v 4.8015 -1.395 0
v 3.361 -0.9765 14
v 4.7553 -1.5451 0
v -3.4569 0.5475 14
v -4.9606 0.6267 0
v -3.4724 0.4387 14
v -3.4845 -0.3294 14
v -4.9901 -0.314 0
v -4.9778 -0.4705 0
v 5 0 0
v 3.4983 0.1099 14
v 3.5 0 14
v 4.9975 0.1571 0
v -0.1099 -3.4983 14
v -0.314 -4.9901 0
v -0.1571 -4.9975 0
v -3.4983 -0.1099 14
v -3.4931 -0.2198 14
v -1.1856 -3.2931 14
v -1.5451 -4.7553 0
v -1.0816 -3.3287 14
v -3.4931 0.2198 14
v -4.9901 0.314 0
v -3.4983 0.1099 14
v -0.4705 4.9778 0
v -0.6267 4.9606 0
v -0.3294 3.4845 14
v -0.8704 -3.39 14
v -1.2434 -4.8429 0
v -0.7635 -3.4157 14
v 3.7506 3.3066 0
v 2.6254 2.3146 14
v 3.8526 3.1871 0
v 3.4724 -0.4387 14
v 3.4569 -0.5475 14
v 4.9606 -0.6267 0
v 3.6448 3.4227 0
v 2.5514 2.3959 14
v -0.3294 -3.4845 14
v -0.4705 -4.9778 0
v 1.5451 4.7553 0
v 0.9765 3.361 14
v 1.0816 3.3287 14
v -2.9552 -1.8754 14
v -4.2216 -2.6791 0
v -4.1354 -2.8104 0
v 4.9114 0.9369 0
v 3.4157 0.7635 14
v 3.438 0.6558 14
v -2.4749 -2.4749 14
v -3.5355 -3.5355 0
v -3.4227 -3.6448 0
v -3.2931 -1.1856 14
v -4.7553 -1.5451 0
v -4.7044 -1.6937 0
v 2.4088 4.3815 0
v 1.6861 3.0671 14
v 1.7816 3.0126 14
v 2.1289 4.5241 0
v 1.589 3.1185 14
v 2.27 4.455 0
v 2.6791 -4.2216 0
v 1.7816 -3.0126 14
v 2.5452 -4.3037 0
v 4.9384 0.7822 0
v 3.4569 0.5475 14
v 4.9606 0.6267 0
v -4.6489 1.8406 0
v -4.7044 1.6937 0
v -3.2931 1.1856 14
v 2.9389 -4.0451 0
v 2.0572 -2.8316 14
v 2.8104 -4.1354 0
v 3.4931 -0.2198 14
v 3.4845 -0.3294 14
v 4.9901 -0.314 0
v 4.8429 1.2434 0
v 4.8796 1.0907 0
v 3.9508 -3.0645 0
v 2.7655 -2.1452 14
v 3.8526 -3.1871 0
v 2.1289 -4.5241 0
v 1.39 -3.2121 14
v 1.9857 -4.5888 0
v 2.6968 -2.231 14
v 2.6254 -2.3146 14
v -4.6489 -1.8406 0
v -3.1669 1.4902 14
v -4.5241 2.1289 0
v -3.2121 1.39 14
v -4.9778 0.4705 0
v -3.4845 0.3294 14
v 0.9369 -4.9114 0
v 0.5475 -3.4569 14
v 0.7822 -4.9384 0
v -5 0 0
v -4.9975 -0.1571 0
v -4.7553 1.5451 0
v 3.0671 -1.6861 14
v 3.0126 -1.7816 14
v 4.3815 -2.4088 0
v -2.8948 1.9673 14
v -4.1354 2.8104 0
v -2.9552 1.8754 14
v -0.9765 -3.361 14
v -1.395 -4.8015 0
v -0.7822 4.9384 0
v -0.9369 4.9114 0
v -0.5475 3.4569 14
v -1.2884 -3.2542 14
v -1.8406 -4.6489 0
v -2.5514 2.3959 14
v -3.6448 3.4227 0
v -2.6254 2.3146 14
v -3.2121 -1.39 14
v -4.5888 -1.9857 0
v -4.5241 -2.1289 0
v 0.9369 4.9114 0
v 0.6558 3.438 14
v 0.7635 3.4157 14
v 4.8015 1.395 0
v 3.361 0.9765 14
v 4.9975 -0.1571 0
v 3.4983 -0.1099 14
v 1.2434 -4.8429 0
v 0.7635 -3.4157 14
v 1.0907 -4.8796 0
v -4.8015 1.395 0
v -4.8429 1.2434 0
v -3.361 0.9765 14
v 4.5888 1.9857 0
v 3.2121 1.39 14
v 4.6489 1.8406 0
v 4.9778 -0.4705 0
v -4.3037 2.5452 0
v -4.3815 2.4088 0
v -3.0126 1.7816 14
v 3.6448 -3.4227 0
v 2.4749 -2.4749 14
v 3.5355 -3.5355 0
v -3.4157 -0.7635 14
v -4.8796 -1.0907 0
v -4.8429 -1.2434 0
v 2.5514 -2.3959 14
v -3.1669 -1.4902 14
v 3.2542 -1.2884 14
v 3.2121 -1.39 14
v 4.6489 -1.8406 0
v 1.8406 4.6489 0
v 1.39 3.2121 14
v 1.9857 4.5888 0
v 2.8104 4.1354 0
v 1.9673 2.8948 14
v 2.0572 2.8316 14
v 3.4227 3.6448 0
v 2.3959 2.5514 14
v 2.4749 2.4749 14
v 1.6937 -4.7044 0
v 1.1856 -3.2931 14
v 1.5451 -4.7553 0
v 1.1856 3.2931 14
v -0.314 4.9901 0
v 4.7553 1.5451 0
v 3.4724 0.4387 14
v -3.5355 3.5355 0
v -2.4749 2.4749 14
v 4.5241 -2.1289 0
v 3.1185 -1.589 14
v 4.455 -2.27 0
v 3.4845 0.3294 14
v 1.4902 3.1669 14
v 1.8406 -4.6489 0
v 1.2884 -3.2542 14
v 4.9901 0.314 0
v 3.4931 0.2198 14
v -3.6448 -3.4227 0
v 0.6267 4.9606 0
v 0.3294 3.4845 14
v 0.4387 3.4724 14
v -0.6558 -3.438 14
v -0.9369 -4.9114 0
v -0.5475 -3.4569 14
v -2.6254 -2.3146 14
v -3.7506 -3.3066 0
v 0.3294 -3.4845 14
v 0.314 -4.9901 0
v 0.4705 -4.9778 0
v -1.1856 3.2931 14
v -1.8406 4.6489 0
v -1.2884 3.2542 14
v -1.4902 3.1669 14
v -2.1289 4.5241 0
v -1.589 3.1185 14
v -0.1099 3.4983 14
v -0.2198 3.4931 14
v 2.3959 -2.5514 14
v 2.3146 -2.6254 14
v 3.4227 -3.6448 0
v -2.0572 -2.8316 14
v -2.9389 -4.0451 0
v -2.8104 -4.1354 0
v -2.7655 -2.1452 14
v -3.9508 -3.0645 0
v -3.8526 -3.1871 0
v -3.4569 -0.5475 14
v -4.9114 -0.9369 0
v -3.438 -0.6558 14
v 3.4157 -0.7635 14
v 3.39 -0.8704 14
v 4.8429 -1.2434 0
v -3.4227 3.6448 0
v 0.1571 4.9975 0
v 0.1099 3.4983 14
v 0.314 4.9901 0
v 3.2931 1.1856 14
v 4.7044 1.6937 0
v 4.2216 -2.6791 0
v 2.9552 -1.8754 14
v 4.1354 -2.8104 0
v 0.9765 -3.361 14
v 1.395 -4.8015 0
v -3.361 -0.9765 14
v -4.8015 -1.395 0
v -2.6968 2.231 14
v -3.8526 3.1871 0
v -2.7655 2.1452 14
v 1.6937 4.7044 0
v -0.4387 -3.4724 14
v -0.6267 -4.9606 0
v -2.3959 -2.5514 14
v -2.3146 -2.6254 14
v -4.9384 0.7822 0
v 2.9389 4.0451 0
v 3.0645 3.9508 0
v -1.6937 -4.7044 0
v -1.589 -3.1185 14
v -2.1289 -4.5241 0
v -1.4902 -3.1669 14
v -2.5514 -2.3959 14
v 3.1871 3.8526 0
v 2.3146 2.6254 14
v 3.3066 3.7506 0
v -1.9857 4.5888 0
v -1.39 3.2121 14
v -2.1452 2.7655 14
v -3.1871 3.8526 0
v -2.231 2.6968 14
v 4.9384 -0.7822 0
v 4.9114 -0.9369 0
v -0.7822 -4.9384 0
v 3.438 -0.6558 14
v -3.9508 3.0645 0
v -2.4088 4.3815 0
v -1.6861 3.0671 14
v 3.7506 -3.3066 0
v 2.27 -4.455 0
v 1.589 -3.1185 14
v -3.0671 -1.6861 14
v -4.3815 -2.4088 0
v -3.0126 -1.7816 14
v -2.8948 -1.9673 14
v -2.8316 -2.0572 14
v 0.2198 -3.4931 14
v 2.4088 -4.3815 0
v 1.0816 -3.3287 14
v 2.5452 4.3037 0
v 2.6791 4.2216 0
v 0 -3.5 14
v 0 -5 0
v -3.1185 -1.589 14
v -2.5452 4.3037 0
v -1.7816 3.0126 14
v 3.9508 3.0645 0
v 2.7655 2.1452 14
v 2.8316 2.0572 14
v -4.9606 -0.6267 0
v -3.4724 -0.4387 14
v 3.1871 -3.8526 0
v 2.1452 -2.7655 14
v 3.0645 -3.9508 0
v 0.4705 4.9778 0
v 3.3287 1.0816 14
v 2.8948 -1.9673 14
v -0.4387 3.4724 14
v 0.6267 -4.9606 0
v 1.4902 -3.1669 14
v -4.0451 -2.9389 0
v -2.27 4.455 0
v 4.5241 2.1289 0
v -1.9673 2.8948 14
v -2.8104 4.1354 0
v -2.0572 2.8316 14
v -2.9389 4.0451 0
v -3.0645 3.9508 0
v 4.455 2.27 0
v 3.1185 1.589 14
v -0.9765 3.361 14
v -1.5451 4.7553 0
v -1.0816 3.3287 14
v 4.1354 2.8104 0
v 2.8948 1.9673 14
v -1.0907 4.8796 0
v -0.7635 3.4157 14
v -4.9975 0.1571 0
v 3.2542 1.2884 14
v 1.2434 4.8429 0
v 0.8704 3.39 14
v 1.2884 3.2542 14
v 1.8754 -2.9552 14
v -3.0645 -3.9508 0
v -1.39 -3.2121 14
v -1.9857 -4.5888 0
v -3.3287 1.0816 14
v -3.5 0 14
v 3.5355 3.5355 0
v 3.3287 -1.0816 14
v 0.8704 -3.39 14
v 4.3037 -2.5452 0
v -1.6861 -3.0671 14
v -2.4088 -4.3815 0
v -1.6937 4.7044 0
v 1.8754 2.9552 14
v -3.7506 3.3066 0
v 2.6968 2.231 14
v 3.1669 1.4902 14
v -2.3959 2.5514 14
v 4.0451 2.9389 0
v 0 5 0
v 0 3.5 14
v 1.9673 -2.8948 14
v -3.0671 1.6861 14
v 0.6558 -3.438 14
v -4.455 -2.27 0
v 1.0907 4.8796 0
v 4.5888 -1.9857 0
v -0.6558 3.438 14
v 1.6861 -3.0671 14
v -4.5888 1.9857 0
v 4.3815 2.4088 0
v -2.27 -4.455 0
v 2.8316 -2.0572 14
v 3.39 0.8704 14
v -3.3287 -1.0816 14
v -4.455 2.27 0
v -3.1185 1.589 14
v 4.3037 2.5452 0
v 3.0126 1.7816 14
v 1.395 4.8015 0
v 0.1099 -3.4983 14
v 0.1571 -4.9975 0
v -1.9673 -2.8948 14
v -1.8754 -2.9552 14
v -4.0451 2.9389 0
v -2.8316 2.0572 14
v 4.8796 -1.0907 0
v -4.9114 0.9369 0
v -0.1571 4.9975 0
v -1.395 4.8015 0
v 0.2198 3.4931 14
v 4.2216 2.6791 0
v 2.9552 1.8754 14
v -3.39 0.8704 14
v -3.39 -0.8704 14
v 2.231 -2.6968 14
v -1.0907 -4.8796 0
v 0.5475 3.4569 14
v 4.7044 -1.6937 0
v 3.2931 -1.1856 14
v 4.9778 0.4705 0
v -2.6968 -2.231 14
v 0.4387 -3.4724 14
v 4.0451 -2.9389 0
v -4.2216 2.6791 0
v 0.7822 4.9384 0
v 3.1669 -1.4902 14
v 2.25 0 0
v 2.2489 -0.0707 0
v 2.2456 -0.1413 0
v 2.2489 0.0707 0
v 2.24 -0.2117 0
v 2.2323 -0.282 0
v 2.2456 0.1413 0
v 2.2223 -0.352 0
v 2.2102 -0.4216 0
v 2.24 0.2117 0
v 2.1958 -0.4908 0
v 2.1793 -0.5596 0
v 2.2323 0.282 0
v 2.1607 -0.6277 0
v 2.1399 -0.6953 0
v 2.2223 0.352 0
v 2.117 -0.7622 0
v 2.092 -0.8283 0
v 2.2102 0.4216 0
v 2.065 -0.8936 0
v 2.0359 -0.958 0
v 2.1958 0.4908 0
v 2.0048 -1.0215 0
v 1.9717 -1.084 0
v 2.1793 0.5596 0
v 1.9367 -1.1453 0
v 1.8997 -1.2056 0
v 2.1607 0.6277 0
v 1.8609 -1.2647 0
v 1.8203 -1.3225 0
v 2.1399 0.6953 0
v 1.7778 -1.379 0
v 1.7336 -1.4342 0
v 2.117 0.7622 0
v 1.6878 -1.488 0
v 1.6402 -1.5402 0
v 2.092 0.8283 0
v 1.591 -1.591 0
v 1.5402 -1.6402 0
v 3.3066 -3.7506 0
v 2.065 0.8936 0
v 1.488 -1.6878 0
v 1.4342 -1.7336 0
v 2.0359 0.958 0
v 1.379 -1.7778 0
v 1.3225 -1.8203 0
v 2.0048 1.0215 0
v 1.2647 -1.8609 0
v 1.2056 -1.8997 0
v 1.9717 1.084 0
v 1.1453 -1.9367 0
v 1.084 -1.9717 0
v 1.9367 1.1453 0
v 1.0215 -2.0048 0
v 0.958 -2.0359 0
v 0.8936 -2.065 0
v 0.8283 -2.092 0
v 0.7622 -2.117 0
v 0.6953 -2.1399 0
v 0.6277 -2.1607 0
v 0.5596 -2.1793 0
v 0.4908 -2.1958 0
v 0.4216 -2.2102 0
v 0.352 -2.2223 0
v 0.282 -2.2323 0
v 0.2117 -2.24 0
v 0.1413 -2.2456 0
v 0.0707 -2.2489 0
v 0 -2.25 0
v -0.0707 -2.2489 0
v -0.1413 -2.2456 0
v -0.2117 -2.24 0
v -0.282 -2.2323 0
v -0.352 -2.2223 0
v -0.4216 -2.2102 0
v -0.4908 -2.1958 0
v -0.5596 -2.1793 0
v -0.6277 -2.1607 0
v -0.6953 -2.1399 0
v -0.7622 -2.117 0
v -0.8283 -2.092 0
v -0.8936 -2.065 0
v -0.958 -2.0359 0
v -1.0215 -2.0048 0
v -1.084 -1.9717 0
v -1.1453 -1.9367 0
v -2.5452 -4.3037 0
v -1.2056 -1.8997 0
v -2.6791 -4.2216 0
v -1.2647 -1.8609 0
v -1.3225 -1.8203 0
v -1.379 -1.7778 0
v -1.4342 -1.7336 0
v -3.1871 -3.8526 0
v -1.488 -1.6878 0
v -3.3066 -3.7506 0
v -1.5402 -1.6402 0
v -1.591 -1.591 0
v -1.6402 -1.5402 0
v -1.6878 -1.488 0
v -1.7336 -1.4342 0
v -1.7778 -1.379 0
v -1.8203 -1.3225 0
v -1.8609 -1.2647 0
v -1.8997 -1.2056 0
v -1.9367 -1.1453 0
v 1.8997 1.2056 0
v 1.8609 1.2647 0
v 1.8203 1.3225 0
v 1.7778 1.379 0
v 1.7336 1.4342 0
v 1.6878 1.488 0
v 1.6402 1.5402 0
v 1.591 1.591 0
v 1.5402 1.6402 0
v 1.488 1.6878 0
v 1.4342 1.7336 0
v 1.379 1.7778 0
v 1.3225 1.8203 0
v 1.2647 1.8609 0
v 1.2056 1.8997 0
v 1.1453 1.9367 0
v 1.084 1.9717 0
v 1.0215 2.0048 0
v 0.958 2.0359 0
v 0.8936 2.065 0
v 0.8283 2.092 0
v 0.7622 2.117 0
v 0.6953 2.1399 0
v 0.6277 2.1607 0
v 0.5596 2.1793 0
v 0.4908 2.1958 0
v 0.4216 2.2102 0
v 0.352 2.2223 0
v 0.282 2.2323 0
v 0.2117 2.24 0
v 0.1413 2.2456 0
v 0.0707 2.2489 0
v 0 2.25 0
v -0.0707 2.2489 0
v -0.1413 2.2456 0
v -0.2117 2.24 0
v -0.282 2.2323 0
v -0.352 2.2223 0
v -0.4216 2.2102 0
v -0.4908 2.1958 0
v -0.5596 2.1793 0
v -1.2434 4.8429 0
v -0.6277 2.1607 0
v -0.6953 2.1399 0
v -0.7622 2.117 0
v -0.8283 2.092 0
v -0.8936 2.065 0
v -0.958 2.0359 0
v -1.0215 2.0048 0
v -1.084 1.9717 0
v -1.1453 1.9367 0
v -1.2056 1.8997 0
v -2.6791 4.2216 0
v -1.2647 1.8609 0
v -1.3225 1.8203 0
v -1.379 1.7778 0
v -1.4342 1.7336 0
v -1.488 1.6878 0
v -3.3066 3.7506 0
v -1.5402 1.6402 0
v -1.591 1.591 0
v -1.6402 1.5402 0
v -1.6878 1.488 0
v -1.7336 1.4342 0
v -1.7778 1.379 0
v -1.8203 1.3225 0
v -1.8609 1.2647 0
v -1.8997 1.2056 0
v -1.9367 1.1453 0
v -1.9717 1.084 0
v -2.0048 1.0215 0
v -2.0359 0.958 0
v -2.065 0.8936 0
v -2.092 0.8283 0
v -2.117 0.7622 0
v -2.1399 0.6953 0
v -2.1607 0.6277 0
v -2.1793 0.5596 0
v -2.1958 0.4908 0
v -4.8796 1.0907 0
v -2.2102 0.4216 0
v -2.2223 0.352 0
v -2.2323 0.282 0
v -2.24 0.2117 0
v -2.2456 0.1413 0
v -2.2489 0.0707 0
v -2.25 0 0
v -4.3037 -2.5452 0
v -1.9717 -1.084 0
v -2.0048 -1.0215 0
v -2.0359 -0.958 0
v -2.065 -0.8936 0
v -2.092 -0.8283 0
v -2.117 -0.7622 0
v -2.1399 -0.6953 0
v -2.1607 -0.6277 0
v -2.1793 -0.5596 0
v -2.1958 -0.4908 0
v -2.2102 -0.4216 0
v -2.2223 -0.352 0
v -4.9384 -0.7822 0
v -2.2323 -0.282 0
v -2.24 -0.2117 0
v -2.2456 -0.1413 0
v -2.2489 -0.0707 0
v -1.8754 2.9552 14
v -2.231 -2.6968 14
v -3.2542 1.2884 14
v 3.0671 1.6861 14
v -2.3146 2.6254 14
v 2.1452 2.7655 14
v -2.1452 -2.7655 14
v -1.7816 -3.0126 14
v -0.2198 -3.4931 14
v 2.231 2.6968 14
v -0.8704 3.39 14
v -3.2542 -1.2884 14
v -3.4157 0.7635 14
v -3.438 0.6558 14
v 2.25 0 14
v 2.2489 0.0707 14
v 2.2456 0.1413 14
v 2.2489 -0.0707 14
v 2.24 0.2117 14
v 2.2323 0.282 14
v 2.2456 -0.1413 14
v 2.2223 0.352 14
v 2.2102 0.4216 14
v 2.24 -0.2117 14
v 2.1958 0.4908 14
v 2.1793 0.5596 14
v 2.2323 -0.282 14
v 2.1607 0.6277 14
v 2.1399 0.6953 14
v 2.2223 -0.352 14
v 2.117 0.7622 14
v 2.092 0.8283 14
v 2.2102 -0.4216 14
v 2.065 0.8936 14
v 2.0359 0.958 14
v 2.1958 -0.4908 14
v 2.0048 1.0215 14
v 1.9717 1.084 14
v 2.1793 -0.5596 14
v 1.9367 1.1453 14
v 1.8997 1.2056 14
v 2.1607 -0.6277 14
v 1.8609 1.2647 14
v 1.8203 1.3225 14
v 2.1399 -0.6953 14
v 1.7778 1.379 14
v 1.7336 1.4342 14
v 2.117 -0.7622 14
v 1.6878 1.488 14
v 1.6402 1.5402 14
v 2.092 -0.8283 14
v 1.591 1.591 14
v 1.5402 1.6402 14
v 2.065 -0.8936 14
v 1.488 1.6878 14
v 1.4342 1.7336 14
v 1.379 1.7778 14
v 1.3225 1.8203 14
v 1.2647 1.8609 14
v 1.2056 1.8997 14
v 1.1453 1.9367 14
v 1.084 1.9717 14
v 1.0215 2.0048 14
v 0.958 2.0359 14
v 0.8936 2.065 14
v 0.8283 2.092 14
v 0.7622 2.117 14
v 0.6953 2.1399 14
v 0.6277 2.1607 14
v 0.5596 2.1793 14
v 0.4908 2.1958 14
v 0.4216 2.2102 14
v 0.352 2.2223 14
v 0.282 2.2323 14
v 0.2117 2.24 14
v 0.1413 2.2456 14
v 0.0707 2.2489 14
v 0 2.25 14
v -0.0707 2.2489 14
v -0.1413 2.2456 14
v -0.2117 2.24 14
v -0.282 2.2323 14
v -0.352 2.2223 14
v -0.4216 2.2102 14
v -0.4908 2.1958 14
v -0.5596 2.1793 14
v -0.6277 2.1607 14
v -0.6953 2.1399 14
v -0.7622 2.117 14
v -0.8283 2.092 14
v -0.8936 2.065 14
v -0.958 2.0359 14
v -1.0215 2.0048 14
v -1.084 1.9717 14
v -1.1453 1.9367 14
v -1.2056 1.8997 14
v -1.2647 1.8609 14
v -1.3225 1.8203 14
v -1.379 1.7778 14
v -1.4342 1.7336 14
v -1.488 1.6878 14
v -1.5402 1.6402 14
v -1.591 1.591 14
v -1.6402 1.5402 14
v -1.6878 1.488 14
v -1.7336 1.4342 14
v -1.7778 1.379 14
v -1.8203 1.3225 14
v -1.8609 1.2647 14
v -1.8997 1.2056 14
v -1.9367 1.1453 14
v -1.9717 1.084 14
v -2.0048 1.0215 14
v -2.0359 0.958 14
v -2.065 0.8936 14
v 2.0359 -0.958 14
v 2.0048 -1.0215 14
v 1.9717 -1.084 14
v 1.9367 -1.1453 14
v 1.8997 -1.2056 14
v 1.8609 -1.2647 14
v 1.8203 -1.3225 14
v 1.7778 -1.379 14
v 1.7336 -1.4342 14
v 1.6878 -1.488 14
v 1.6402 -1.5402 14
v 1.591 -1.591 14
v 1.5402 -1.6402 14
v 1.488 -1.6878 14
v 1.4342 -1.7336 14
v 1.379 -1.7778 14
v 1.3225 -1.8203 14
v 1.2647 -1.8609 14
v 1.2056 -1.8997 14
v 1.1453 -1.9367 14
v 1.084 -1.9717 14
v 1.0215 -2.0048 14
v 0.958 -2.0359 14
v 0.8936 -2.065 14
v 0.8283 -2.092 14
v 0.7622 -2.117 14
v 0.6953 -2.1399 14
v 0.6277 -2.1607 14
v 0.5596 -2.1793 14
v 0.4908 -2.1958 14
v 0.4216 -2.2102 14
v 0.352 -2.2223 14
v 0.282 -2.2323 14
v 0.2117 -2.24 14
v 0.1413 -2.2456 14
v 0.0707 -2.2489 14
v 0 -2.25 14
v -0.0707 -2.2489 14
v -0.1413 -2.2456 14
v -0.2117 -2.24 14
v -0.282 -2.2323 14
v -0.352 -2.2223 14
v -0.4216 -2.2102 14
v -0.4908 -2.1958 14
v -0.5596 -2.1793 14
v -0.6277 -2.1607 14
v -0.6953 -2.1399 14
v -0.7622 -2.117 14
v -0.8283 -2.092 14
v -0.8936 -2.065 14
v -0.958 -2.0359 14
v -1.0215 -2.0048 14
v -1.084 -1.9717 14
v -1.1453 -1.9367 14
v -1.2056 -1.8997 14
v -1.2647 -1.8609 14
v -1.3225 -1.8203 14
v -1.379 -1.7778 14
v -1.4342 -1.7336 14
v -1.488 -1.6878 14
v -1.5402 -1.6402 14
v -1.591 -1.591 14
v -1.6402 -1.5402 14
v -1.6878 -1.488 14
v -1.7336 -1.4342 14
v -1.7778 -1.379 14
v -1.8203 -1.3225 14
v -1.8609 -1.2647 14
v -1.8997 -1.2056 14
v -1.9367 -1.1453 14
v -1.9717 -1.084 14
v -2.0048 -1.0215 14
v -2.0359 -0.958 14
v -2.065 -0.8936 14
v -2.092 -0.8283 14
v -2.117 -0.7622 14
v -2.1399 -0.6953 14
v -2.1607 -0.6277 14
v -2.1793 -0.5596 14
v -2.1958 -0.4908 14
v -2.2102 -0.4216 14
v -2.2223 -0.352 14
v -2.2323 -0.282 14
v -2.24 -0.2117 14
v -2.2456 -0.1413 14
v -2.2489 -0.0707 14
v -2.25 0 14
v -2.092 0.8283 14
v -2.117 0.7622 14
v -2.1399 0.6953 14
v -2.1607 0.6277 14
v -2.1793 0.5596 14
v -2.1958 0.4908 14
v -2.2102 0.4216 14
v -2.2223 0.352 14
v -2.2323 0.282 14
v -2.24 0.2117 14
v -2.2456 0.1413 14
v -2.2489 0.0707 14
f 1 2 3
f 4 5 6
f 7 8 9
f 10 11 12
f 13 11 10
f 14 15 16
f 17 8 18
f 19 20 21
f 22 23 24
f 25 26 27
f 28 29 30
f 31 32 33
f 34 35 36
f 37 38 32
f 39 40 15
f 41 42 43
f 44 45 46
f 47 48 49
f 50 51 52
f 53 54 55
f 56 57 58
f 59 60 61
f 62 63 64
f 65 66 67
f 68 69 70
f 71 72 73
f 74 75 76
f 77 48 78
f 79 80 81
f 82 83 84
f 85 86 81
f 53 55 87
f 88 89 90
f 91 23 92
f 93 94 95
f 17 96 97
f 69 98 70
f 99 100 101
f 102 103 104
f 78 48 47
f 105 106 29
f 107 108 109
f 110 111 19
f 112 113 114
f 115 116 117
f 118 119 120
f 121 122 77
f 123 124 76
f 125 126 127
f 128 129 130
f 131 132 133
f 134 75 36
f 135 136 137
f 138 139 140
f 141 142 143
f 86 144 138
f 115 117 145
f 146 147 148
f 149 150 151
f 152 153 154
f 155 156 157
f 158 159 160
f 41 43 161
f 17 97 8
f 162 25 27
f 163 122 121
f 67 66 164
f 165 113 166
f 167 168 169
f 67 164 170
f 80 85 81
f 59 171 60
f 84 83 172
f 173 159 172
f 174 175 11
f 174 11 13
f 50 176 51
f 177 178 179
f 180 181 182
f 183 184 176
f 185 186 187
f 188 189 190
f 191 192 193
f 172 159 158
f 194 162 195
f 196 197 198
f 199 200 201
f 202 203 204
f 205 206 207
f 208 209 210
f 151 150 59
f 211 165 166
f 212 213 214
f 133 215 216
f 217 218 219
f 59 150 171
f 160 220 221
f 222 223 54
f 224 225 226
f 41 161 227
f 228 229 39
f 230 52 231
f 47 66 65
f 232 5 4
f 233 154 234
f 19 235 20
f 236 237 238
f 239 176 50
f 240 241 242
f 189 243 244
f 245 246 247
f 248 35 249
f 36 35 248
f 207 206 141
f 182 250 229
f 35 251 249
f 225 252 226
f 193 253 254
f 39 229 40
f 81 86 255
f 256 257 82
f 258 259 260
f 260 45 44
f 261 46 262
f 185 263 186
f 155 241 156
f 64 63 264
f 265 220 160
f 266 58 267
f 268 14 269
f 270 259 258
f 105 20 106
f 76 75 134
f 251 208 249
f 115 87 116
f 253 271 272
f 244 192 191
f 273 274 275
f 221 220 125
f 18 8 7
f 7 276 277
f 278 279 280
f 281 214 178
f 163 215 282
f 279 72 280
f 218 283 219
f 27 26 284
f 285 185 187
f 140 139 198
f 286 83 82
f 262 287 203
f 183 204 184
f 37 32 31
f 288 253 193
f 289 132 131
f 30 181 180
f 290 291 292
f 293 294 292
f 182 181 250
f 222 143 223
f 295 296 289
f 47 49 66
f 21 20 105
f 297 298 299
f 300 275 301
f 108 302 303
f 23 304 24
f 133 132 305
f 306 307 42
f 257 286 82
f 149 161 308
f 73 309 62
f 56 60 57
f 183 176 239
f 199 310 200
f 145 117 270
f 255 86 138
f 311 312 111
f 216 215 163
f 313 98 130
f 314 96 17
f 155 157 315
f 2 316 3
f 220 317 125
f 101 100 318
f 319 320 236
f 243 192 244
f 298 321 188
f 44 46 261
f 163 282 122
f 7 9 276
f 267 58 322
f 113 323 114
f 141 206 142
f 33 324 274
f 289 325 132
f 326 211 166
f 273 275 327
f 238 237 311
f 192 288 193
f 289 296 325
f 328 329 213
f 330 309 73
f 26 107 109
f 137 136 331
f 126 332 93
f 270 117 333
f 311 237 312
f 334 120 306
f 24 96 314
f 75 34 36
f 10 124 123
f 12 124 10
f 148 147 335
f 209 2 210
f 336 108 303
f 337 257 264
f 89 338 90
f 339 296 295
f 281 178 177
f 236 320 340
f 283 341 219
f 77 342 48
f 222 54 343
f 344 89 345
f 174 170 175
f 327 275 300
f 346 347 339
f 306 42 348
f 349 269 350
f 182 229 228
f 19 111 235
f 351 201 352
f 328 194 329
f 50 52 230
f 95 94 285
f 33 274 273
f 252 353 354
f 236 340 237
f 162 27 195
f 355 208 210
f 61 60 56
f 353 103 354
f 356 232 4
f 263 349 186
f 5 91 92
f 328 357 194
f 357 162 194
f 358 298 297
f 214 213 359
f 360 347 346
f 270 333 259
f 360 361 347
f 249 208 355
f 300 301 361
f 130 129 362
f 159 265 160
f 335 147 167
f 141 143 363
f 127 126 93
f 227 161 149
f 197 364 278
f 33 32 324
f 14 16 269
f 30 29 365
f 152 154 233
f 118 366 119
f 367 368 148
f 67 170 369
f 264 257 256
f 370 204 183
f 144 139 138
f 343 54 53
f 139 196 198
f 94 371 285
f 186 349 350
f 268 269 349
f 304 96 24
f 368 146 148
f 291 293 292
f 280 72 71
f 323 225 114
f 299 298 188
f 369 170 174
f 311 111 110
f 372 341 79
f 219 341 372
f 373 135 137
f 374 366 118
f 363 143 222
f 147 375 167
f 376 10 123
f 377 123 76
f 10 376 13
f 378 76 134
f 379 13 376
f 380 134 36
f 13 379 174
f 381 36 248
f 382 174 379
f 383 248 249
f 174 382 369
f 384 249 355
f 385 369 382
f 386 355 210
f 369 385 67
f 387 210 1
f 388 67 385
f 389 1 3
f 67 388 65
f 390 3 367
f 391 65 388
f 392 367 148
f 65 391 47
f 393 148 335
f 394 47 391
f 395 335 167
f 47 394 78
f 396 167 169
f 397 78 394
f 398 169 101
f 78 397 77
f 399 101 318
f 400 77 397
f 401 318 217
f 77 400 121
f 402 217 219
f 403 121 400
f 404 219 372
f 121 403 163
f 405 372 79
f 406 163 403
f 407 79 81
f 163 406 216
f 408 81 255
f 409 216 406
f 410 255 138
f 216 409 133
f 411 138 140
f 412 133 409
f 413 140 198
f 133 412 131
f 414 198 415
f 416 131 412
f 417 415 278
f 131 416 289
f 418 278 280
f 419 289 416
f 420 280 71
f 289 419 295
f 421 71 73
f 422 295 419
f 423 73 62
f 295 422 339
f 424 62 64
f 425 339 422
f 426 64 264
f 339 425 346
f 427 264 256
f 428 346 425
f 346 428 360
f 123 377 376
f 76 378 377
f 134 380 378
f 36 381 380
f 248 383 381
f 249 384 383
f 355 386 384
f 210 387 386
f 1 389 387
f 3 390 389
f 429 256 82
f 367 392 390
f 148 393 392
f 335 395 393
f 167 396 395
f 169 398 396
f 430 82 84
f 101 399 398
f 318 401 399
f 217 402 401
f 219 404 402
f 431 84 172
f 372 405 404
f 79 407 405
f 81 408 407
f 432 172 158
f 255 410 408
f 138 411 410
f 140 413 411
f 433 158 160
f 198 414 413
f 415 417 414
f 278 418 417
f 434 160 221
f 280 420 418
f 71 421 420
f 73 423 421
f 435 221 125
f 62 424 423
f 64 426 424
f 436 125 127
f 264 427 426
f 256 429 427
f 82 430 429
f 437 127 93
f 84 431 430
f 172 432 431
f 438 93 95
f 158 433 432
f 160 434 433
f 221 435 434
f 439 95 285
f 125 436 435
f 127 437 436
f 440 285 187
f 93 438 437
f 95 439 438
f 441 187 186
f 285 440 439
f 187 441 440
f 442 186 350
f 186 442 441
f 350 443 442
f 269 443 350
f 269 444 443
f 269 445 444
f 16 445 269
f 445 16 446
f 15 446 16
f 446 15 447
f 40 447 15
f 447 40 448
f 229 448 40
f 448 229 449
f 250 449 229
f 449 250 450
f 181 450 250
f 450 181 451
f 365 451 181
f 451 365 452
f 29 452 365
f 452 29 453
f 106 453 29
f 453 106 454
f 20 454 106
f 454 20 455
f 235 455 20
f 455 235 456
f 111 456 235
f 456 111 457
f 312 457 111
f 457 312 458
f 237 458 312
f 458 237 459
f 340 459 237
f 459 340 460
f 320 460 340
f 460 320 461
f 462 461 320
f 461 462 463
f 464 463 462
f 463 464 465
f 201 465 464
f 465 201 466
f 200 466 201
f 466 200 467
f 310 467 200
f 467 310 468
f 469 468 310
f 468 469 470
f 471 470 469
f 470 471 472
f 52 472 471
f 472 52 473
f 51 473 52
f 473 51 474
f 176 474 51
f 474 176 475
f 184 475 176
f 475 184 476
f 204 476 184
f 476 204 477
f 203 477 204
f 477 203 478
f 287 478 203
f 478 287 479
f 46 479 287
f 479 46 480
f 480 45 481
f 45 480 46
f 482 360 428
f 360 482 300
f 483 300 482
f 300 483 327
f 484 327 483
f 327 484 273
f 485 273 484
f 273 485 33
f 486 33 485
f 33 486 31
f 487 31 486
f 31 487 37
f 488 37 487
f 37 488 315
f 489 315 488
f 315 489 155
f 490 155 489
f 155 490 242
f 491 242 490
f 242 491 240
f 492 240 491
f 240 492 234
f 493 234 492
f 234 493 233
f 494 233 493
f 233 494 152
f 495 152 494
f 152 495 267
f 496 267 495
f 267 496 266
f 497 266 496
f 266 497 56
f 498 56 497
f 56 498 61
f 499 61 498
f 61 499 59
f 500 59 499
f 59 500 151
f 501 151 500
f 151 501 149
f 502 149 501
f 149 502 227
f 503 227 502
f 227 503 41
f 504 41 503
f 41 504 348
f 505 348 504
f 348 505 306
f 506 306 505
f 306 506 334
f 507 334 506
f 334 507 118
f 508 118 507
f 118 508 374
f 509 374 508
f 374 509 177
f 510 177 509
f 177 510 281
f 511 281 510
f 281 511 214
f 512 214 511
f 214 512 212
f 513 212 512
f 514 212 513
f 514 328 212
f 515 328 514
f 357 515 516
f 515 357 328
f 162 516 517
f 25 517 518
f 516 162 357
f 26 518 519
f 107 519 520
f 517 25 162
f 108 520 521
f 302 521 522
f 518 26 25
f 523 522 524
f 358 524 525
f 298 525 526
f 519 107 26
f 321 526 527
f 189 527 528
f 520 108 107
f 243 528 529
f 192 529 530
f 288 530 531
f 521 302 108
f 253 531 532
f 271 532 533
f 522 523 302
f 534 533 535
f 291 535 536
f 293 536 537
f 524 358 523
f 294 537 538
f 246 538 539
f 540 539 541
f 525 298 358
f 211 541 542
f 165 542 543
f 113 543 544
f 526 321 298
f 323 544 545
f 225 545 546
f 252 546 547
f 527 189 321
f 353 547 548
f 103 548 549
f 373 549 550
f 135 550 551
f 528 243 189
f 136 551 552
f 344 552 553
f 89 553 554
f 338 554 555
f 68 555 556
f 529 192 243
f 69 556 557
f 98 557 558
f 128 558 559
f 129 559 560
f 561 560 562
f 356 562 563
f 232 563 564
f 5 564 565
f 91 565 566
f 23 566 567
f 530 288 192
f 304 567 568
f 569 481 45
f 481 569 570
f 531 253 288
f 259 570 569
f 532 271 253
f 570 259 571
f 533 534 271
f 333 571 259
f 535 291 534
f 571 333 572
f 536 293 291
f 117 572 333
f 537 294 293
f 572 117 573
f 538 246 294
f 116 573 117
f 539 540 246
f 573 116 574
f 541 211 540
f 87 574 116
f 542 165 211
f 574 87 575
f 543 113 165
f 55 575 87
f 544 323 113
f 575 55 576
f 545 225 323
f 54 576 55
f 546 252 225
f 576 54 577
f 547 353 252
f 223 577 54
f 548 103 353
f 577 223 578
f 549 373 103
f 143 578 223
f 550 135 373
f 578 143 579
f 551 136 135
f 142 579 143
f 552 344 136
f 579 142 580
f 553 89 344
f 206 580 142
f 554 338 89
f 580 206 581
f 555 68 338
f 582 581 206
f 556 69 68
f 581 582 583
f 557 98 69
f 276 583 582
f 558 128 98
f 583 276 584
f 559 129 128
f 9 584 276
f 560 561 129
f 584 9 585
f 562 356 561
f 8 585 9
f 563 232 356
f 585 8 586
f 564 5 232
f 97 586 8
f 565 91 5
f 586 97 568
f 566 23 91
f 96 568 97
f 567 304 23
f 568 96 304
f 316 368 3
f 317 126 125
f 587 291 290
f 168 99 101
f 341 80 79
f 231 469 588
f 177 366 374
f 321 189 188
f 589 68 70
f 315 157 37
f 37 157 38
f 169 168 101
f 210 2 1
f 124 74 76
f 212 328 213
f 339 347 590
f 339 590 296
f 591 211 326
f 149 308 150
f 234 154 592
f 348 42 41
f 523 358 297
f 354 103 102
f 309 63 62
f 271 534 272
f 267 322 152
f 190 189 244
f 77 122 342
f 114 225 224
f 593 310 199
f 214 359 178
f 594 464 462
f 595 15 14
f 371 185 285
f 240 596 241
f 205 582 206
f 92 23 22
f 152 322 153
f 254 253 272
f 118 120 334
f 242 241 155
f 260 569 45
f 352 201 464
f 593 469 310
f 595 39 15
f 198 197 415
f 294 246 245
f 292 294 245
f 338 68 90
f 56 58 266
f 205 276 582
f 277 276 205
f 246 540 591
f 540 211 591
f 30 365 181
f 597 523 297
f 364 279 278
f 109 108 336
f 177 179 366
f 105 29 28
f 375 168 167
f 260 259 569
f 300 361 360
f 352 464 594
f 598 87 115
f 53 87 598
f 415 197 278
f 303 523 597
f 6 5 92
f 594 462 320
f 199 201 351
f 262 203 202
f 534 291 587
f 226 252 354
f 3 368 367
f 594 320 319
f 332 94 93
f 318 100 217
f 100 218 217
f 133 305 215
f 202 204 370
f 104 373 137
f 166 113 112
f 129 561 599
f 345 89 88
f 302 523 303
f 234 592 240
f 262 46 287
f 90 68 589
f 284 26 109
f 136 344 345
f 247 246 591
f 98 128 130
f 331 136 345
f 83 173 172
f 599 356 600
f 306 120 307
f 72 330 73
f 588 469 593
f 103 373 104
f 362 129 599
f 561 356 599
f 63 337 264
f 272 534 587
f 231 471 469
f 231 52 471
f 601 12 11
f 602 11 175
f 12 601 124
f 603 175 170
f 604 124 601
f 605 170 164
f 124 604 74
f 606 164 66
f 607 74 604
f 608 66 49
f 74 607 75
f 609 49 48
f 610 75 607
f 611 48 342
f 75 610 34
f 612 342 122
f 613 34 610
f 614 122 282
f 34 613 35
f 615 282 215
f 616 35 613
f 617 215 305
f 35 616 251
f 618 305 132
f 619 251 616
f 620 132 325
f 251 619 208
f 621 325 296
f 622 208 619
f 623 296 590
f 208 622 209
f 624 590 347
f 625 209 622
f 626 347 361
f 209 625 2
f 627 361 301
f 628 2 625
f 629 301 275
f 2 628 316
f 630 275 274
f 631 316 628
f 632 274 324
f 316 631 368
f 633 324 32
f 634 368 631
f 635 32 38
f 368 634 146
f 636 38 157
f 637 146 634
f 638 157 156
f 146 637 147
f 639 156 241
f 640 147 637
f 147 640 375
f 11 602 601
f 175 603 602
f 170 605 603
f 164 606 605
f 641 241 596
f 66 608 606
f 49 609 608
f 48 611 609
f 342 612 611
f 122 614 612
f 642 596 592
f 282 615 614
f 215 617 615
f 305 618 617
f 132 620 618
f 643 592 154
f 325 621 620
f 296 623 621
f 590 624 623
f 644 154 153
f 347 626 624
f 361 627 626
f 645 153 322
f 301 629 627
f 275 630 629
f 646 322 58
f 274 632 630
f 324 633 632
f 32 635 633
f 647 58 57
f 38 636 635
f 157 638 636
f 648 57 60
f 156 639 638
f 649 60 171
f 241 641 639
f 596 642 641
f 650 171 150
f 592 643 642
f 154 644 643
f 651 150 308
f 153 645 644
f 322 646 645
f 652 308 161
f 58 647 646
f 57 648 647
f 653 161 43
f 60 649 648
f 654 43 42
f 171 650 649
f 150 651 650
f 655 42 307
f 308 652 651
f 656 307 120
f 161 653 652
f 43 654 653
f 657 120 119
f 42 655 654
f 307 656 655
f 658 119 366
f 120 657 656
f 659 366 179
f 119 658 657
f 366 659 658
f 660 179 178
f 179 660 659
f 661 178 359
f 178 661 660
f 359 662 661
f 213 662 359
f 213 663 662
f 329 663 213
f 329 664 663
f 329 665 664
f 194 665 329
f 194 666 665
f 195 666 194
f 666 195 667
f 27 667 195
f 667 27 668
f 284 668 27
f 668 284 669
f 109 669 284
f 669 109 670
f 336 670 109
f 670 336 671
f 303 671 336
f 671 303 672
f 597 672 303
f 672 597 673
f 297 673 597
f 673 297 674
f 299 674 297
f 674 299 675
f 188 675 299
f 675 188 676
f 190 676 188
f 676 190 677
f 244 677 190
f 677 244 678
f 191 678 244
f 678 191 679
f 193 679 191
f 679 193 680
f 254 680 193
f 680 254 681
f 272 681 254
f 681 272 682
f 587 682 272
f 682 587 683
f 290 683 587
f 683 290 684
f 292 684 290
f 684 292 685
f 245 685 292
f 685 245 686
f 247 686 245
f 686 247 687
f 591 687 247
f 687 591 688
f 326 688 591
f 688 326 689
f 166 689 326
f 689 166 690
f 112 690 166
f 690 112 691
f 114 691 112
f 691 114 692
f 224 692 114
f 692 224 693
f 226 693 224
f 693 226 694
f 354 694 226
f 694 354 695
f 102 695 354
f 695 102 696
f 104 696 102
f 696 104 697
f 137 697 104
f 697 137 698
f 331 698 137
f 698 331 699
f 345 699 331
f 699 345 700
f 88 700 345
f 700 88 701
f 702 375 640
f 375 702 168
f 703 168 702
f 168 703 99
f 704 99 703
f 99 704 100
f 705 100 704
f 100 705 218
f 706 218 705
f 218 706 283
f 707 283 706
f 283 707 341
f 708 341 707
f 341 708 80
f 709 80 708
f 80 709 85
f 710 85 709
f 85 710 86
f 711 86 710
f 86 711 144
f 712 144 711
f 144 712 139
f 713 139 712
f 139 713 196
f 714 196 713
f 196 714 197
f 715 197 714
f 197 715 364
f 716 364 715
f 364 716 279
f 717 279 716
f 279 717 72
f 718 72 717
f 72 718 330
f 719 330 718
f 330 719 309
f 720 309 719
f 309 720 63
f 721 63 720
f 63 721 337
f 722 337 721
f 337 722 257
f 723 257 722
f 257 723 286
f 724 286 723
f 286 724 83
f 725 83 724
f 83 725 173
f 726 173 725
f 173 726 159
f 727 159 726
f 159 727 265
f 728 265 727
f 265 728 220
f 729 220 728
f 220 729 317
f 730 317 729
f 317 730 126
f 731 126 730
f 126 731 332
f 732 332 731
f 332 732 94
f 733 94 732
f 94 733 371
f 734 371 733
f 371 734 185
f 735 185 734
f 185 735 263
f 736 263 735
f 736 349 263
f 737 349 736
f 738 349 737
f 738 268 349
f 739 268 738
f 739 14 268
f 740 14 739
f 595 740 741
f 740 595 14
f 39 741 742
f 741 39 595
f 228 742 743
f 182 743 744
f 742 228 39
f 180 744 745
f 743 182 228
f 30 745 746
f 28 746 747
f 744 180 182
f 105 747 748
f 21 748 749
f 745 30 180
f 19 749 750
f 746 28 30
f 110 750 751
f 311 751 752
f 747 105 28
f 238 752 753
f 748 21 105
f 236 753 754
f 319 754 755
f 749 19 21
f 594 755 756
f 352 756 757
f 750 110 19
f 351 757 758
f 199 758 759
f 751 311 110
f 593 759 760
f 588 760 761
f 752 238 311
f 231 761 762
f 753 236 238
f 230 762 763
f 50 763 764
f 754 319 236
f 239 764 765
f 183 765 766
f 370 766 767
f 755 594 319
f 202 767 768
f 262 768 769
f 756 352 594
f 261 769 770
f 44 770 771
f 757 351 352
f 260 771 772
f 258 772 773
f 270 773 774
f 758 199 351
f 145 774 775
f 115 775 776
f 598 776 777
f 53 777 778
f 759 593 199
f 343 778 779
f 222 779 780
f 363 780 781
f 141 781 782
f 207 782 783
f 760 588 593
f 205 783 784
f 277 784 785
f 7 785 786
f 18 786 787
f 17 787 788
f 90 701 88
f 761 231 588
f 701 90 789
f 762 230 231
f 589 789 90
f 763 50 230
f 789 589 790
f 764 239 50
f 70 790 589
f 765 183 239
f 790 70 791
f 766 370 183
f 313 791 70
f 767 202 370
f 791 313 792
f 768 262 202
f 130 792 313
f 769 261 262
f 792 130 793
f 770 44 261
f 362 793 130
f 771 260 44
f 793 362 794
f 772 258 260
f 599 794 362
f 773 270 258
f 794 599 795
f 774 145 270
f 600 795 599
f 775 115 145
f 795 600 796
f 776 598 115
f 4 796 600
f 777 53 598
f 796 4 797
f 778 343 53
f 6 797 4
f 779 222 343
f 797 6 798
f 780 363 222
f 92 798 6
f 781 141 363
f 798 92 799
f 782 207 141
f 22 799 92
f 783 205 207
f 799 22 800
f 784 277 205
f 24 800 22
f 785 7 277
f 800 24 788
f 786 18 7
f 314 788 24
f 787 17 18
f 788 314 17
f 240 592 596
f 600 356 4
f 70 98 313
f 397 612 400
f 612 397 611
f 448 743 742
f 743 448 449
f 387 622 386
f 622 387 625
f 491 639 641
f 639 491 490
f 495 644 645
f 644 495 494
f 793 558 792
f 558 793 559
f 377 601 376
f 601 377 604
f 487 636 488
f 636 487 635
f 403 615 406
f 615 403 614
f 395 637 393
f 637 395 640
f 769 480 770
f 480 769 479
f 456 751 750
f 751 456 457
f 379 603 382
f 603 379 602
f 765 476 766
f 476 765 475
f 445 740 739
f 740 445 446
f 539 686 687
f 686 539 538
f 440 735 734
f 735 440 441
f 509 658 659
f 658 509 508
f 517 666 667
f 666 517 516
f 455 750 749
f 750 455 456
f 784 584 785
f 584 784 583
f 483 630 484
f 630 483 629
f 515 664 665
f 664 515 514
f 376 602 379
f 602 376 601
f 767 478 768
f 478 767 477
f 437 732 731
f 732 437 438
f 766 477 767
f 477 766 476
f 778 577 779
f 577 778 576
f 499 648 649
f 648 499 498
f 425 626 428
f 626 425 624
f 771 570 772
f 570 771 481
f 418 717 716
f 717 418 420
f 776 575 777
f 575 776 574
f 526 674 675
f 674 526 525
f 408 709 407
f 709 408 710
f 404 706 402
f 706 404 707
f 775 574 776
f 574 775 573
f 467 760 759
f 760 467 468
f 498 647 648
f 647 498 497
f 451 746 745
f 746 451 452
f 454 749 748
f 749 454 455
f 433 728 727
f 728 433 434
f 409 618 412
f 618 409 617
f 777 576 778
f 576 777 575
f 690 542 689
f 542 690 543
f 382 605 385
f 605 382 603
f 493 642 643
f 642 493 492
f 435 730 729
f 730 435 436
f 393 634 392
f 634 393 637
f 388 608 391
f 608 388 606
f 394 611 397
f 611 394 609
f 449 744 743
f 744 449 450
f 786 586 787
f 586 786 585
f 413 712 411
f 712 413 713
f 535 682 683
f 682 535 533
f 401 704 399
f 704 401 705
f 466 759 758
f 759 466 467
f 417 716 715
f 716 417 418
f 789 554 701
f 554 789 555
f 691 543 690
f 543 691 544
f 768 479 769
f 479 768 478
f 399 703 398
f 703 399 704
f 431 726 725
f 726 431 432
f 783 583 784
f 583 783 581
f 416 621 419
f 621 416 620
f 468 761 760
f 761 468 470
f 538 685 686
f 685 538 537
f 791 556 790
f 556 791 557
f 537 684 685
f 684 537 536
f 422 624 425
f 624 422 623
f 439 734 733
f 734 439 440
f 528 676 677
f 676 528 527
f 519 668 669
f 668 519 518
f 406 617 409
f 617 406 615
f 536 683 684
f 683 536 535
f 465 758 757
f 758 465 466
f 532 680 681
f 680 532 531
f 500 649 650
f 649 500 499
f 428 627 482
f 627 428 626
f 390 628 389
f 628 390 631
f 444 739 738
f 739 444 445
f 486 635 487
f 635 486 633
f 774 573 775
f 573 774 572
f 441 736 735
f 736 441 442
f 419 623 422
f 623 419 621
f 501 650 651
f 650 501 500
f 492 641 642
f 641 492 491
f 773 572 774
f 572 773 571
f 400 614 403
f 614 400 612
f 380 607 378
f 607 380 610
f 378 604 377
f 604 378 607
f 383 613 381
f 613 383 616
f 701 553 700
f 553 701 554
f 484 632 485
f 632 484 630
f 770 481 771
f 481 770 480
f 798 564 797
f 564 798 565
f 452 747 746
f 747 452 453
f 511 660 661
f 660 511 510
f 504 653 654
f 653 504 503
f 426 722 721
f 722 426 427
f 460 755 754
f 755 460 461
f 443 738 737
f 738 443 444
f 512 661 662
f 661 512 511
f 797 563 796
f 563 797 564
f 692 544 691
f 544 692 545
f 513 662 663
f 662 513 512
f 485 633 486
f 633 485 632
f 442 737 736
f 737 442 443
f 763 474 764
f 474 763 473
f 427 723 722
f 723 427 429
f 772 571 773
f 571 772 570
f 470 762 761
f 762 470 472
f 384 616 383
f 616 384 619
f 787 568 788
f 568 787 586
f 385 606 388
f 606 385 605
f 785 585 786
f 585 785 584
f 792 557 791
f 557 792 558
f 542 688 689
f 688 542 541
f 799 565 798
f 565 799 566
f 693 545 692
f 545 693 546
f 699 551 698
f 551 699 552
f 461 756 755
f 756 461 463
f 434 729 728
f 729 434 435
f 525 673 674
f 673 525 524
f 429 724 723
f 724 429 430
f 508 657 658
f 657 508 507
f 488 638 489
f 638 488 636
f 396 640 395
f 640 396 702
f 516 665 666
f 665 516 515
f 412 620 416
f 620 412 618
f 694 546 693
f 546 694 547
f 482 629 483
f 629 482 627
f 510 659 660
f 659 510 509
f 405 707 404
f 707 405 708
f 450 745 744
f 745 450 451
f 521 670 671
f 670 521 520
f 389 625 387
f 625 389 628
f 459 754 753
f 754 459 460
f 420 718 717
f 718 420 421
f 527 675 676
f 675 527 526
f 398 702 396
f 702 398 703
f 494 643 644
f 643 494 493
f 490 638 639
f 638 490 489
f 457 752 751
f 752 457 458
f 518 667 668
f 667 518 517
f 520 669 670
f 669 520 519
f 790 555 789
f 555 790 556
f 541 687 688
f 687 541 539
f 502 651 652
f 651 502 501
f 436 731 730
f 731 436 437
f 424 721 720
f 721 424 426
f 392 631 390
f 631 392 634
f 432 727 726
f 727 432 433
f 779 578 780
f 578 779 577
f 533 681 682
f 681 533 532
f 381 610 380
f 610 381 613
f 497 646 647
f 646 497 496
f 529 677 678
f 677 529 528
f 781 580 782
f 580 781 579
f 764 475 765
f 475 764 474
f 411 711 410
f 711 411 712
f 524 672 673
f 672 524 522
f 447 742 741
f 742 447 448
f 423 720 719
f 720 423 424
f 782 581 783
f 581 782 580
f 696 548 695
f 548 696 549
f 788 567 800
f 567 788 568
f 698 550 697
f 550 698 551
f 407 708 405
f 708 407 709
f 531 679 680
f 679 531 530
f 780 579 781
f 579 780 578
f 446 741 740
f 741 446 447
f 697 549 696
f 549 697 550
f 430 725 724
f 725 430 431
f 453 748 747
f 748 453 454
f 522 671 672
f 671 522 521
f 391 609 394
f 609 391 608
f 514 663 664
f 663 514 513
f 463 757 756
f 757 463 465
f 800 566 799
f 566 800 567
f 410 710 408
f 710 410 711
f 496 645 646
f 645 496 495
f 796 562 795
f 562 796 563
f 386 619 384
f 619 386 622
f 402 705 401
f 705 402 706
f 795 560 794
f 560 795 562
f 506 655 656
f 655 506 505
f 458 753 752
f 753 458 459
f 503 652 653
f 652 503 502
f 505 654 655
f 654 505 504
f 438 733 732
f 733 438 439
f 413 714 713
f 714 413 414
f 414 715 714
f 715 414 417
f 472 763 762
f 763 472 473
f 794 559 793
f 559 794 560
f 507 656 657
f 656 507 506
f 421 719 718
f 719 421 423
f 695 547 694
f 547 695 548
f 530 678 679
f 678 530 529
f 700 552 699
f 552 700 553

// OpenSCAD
$fn = 200;

h = 9+5;

difference(){
	cylinder(d1 = 10, d2 = 7, h = h);
	cylinder(d = 4.5, h = h+1);
}
